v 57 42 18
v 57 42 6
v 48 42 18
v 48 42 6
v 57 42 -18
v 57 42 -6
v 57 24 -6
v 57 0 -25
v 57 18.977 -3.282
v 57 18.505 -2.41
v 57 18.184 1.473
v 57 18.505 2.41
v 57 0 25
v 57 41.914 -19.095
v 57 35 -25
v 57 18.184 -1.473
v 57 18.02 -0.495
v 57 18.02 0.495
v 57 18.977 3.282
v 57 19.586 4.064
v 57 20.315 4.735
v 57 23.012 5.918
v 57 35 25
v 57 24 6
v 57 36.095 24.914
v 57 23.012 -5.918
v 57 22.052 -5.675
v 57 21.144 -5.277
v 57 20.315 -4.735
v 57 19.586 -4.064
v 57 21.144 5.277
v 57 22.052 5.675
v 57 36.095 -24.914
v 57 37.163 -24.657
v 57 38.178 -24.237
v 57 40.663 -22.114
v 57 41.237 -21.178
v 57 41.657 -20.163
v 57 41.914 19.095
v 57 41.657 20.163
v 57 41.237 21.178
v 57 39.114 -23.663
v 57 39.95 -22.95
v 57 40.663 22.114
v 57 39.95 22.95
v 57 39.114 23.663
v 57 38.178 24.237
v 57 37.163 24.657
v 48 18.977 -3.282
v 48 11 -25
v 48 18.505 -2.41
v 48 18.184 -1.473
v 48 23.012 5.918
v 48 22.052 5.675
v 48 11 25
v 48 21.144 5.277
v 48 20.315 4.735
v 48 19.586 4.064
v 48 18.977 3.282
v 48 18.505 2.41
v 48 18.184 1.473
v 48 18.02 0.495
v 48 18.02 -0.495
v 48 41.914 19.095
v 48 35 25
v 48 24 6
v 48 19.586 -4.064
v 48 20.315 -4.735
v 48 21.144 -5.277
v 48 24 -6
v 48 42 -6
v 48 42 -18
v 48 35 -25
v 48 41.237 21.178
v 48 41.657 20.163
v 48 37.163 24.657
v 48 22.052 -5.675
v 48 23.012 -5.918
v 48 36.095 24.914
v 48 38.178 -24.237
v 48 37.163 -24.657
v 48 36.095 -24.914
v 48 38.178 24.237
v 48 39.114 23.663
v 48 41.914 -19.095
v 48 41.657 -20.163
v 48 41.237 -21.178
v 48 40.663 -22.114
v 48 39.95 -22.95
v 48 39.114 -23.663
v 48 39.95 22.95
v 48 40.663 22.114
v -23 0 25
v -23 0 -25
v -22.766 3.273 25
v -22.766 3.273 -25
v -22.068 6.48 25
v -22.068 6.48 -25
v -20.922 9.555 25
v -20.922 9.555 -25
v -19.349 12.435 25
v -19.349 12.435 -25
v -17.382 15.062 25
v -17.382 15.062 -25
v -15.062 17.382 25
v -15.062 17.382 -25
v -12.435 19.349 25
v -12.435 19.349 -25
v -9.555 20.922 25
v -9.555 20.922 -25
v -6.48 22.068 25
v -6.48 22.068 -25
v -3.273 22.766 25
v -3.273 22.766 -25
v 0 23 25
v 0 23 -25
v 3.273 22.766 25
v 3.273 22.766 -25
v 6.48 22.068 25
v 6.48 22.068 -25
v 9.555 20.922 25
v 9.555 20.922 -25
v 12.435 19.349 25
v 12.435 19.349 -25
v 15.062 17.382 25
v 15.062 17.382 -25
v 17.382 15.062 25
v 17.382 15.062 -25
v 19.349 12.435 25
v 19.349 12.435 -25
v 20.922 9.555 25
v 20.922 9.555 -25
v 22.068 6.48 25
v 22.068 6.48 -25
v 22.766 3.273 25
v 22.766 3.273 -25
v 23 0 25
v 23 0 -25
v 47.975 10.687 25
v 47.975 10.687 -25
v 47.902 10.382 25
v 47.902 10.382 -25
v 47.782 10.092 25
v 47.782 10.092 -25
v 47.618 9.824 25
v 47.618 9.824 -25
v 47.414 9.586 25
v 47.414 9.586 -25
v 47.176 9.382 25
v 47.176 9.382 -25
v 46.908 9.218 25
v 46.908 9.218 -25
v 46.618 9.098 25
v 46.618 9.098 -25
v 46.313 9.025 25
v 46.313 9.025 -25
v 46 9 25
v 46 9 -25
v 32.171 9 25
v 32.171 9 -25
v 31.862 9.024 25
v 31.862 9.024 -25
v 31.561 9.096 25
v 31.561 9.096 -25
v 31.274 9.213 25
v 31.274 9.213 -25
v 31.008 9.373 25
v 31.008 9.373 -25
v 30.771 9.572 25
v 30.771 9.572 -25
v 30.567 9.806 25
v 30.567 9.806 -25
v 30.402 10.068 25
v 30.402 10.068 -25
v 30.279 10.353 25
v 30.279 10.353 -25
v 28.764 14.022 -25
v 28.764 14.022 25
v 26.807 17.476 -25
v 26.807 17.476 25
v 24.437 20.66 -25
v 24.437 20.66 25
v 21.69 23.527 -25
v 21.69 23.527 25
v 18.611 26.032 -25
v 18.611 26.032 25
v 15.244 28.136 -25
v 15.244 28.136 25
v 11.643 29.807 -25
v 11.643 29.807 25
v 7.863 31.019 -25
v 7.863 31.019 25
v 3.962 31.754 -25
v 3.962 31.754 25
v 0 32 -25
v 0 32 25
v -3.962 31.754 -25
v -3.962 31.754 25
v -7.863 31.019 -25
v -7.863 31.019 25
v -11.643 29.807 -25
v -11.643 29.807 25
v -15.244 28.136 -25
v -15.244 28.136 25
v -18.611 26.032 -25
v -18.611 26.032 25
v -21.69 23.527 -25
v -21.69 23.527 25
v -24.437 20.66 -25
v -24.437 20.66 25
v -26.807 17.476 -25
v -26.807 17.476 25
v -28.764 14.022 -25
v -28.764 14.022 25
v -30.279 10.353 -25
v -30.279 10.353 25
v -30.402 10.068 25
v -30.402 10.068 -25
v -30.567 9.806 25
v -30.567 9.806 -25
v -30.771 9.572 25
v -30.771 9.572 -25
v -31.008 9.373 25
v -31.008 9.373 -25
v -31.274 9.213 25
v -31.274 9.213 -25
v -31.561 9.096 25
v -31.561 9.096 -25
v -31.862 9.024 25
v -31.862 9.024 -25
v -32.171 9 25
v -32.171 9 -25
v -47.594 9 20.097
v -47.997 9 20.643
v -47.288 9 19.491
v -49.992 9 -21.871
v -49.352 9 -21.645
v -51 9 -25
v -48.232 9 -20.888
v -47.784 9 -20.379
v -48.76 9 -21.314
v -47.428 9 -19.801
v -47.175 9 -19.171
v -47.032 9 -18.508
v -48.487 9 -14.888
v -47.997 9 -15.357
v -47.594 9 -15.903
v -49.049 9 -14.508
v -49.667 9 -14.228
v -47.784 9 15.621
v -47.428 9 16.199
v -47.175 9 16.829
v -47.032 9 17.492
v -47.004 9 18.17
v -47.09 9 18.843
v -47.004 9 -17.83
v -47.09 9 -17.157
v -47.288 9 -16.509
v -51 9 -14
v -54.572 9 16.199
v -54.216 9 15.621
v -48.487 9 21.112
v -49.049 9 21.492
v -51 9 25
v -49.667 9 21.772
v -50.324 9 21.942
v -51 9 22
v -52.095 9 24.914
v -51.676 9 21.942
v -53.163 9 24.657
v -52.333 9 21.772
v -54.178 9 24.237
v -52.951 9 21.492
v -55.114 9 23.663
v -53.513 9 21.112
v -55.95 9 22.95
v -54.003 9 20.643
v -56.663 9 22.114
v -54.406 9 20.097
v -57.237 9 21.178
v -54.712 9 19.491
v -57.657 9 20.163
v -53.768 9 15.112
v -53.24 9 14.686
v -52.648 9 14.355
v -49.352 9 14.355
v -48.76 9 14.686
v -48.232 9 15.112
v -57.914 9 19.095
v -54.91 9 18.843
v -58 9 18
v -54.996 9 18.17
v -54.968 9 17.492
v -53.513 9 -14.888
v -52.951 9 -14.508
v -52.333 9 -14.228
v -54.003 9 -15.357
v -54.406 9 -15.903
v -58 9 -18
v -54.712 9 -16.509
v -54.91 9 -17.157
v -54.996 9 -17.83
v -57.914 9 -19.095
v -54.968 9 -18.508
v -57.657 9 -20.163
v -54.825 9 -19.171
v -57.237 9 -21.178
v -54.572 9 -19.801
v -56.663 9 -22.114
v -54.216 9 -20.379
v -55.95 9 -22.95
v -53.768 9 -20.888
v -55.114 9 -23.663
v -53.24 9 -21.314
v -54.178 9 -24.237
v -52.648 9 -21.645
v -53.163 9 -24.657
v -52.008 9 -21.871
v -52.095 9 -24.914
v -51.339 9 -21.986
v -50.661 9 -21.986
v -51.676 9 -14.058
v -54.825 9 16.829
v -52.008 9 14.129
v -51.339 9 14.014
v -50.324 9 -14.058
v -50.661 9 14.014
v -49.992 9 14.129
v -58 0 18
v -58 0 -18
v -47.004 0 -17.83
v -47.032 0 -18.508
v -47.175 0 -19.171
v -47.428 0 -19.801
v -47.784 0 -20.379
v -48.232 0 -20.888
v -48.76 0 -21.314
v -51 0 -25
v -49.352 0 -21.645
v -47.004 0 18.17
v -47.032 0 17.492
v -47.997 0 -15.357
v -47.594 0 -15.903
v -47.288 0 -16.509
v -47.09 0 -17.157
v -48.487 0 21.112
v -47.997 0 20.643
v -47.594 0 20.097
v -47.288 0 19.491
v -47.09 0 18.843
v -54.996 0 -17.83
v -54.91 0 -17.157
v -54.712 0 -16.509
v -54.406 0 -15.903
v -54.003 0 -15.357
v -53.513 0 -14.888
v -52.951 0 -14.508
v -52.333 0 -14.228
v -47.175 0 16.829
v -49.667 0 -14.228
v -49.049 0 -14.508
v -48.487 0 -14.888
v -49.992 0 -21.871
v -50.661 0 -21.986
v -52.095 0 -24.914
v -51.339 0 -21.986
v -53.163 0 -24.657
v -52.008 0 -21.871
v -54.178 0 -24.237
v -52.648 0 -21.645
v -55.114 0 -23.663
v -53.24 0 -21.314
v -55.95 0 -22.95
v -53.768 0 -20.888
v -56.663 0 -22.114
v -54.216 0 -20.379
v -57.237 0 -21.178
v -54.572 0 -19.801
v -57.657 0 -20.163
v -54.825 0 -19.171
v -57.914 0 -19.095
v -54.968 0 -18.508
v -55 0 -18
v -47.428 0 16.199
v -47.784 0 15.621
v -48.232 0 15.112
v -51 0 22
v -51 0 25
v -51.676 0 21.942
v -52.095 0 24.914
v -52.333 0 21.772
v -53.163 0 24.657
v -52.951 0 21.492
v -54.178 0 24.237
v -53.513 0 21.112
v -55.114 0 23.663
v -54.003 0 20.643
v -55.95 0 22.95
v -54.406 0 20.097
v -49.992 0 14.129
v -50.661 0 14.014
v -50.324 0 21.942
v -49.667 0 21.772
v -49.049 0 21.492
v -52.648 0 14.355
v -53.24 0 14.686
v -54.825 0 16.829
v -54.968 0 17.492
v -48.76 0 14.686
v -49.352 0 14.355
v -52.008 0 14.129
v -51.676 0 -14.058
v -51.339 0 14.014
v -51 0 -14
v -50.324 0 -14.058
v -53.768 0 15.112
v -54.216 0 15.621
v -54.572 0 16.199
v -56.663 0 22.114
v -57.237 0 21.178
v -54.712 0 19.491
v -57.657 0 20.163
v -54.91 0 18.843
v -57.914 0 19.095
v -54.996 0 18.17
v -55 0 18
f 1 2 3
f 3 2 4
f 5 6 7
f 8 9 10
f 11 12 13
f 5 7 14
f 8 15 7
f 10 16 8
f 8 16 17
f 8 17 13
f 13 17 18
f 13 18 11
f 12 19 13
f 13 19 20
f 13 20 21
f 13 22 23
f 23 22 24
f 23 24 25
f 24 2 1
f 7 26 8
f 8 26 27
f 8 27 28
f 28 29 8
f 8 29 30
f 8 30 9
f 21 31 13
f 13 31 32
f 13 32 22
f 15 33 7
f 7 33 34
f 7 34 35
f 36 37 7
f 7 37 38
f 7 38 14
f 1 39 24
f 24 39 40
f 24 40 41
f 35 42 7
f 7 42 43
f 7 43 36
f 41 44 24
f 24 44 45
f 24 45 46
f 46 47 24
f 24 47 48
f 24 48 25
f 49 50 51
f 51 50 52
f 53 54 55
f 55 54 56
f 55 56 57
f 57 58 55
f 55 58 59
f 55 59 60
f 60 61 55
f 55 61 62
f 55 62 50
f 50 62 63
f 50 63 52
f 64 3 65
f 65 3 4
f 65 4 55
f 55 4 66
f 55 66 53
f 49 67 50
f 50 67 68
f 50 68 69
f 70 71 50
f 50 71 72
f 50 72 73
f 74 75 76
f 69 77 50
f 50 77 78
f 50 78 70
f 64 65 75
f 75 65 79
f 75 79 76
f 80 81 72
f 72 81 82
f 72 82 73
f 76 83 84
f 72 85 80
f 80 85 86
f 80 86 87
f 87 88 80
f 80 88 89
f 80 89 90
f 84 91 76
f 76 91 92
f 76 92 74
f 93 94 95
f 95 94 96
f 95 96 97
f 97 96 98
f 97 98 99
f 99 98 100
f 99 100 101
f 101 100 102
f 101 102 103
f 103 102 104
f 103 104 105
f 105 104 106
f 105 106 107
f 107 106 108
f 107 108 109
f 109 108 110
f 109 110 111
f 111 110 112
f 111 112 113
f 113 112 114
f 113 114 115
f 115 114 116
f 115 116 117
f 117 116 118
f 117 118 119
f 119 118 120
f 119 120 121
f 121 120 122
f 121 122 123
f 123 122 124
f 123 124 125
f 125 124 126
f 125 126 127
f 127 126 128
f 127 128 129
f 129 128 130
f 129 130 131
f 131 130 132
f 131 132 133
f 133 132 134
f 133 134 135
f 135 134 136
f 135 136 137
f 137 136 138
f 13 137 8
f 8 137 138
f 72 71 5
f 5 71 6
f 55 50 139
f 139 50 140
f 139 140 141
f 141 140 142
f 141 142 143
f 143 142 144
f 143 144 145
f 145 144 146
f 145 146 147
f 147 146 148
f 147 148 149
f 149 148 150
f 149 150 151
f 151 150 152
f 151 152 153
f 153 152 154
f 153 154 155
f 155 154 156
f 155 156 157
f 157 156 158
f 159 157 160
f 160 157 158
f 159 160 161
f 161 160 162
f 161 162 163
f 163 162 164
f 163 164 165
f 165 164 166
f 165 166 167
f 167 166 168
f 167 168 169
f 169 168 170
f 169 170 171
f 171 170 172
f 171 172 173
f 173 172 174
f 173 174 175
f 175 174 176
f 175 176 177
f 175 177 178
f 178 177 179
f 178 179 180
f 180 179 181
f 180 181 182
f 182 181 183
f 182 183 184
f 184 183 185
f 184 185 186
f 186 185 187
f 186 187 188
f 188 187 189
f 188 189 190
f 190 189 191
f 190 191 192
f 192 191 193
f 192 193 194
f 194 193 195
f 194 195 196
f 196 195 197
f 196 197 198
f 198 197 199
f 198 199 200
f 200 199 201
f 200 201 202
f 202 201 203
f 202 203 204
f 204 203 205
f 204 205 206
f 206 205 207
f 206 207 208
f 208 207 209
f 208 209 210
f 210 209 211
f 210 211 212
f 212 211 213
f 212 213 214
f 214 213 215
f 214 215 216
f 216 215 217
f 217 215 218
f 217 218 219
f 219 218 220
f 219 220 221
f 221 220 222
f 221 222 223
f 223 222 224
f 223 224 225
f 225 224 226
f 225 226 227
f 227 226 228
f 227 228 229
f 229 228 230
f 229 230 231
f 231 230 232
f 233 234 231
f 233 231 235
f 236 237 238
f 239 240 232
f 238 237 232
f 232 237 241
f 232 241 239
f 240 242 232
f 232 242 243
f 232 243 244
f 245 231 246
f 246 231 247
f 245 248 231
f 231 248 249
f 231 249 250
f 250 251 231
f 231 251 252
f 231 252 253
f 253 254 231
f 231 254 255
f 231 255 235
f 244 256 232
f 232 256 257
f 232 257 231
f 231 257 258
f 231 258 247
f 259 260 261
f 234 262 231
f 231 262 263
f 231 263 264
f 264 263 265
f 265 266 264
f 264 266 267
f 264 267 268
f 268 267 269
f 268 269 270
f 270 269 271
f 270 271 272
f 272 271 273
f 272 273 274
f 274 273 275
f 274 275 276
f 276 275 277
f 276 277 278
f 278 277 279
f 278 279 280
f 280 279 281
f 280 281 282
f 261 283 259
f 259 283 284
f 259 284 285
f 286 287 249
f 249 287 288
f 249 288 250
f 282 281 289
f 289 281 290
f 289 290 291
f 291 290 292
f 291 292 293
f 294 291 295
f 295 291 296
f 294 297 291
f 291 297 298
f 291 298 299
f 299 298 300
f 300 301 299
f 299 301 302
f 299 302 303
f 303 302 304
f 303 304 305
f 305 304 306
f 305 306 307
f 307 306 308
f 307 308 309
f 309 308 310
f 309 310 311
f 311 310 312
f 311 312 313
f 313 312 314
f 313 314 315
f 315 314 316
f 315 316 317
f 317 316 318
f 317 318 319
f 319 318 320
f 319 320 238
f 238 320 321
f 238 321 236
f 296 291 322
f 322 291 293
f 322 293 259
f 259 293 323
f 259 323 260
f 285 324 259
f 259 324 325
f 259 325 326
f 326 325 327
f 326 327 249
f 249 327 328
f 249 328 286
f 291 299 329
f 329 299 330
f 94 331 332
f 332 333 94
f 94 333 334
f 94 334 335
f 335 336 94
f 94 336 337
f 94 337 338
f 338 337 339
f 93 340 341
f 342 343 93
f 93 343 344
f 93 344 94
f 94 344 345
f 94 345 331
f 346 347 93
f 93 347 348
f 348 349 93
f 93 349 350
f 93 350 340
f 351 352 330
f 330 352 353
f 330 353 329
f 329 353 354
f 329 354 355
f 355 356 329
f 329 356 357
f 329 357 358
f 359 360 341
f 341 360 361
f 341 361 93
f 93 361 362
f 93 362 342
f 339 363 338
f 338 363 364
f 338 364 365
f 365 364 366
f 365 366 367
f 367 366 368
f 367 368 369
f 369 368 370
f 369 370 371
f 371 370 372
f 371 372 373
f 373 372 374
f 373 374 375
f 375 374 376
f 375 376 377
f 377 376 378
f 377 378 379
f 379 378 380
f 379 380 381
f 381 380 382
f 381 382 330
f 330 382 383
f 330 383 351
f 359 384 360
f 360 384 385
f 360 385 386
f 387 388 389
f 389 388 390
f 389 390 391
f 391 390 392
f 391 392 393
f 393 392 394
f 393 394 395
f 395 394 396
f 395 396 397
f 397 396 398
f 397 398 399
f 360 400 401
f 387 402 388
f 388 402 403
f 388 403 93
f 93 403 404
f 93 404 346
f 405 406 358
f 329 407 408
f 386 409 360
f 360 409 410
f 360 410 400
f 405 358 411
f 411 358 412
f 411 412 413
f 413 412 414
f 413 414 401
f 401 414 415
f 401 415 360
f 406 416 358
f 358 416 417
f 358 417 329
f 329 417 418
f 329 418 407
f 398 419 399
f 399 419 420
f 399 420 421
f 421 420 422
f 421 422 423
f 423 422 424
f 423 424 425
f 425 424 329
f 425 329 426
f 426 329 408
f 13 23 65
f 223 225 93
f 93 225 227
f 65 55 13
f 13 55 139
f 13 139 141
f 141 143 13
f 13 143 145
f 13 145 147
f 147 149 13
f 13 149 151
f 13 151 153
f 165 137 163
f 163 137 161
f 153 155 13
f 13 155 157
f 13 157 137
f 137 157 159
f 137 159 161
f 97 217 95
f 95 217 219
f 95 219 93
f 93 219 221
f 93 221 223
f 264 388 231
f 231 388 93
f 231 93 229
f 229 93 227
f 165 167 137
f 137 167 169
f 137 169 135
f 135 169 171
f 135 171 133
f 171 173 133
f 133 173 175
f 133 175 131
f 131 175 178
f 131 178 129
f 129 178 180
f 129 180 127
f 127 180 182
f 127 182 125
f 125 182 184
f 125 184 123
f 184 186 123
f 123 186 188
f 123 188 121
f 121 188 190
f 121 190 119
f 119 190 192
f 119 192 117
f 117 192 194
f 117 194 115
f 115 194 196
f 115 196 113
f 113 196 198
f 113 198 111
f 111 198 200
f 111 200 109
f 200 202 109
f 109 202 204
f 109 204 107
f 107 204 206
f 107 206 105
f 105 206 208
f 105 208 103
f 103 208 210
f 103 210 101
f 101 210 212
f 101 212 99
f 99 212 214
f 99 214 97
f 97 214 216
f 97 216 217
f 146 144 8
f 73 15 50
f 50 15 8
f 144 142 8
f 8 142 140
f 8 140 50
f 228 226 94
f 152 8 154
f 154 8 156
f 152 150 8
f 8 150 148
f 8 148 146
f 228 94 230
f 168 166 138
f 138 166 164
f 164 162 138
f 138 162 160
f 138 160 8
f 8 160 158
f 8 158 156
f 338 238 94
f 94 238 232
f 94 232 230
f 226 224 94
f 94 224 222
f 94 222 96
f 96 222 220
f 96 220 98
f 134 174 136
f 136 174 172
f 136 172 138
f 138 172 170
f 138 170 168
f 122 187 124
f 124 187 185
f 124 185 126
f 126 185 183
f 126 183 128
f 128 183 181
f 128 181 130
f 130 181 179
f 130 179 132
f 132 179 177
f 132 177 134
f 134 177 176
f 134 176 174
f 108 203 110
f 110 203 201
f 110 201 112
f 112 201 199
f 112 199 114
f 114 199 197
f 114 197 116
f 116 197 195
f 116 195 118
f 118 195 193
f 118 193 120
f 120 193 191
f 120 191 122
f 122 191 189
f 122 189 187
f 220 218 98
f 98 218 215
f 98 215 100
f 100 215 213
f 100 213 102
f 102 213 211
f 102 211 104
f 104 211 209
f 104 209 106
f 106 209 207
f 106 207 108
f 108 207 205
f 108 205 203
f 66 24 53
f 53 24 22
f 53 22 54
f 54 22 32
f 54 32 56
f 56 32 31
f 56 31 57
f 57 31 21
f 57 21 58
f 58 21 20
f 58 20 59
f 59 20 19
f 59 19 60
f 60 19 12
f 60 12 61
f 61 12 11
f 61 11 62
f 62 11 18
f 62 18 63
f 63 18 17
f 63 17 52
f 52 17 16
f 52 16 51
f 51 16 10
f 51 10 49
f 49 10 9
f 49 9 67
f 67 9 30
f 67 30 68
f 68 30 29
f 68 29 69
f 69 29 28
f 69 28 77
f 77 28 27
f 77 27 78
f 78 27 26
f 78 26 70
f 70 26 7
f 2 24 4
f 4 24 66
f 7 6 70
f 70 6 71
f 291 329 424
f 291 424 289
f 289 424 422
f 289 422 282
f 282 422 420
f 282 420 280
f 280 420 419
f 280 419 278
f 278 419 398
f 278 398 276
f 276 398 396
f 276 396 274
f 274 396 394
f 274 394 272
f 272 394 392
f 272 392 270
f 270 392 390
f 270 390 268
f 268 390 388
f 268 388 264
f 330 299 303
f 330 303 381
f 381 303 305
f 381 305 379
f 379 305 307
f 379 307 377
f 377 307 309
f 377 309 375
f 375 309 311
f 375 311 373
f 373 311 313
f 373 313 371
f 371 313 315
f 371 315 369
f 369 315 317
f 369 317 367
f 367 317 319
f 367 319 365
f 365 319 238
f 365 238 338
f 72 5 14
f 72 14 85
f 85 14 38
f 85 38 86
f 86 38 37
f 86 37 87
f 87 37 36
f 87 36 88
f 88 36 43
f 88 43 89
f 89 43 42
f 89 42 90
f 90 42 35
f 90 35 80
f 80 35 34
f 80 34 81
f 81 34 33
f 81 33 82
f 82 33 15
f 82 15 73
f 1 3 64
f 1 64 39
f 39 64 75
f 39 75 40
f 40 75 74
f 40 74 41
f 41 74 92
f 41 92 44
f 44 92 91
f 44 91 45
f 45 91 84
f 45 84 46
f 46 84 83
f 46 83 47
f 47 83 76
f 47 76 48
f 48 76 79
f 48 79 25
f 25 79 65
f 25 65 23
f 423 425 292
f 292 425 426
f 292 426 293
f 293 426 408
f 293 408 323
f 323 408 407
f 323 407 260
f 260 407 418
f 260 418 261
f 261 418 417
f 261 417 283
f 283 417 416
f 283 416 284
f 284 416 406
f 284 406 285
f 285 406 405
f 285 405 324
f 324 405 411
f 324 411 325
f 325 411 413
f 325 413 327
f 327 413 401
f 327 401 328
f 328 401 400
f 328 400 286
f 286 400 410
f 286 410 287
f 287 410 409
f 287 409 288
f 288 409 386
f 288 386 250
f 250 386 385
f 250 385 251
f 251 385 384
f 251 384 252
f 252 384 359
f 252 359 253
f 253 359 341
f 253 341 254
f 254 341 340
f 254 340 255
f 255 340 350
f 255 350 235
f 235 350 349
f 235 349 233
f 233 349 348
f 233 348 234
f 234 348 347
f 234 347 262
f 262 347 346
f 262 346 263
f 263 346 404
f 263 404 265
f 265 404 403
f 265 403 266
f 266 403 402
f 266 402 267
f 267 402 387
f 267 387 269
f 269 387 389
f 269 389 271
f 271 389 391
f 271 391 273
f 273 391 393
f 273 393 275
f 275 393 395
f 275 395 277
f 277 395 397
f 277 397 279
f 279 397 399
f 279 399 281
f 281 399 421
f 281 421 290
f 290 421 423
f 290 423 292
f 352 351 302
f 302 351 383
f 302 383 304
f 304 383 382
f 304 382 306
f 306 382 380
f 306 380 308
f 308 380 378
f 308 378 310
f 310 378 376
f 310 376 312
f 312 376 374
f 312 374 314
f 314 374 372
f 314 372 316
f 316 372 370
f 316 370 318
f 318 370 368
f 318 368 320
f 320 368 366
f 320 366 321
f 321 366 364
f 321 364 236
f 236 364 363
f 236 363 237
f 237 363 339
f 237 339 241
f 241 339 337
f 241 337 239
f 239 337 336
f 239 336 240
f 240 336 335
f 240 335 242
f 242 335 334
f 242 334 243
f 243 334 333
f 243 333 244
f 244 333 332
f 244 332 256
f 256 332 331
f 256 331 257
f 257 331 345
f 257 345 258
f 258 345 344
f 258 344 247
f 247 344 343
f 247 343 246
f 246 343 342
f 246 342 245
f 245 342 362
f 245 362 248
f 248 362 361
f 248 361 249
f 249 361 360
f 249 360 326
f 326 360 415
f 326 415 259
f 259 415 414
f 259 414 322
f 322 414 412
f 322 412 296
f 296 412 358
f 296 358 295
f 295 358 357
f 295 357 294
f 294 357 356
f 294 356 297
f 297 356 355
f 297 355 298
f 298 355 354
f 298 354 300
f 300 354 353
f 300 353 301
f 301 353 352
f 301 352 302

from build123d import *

# Parameters (mm, degrees)
BOSS_EXTRUDE1_DEPTH = 25
CUT_EXTRUDE1_DEPTH  = 9
FILLET1_R           = 7
SKETCH4_R           = 4
CUT_EXTRUDE2_DEPTH  = 9


with BuildPart() as part:
    # Sketch2 → Boss-Extrude1 (new, symmetric)
    with BuildSketch(Plane.XY):
        with BuildLine():
            Line((23, 0), (57, 0))
            Line((57, 0), (57, 42))
            Line((57, 42), (48, 42))
            Line((48, 42), (48, 11))
            ThreePointArc((48, 11), (47.414213562, 9.585786438), (46, 9))
            Line((46, 9), (32.171415884, 9))
            ThreePointArc((32.171415884, 9), (31.008255888, 9.373021566), (30.278979656, 10.352941176))
            ThreePointArc((30.278979656, 10.352941176), (0, 32), (-30.278979656, 10.352941176))
            ThreePointArc((-30.278979656, 10.352941176), (-31.008255888, 9.373021566), (-32.171415884, 9))
            Line((-32.171415884, 9), (-58, 9))
            Line((-58, 9), (-58, 0))
            Line((-58, 0), (-23, 0))
            ThreePointArc((-23, 0), (0, 23), (23, 0))
        make_face()
    extrude(amount=BOSS_EXTRUDE1_DEPTH, both=True)

    # Sketch3 → Cut-Extrude1 (cut)
    with BuildSketch(Plane(origin=(57, 0, 0), x_dir=(0, 0, -1), z_dir=(1, 0, 0))):
        with BuildLine():
            Line((-6, 24), (-6, 42))
            Line((-6, 42), (6, 42))
            Line((6, 42), (6, 24))
            ThreePointArc((6, 24), (0, 18), (-6, 24))
        make_face()
    extrude(amount=-CUT_EXTRUDE1_DEPTH, mode=Mode.SUBTRACT)

    # Fillet1
    fillet1_edges = [part.edges().sort_by_distance(p)[0] for p in [
        (-58, 4.5, -25),
        (52.5, 42, -25),
        (52.5, 42, 25),
        (-58, 4.5, 25),
    ]]
    fillet(fillet1_edges, radius=FILLET1_R)

    # Sketch4 → Cut-Extrude2 (cut)
    with BuildSketch(Plane(origin=(0, 9, 0), x_dir=(1, 0, 0), z_dir=(0, 1, 0))):
        with Locations(Location((-51, 18, 0), (0, 0, 270))):
            Circle(SKETCH4_R)
        with Locations(Location((-51, -18, 0), (0, 0, 270))):
            Circle(SKETCH4_R)
    extrude(amount=-CUT_EXTRUDE2_DEPTH, mode=Mode.SUBTRACT)


solid = part.part
